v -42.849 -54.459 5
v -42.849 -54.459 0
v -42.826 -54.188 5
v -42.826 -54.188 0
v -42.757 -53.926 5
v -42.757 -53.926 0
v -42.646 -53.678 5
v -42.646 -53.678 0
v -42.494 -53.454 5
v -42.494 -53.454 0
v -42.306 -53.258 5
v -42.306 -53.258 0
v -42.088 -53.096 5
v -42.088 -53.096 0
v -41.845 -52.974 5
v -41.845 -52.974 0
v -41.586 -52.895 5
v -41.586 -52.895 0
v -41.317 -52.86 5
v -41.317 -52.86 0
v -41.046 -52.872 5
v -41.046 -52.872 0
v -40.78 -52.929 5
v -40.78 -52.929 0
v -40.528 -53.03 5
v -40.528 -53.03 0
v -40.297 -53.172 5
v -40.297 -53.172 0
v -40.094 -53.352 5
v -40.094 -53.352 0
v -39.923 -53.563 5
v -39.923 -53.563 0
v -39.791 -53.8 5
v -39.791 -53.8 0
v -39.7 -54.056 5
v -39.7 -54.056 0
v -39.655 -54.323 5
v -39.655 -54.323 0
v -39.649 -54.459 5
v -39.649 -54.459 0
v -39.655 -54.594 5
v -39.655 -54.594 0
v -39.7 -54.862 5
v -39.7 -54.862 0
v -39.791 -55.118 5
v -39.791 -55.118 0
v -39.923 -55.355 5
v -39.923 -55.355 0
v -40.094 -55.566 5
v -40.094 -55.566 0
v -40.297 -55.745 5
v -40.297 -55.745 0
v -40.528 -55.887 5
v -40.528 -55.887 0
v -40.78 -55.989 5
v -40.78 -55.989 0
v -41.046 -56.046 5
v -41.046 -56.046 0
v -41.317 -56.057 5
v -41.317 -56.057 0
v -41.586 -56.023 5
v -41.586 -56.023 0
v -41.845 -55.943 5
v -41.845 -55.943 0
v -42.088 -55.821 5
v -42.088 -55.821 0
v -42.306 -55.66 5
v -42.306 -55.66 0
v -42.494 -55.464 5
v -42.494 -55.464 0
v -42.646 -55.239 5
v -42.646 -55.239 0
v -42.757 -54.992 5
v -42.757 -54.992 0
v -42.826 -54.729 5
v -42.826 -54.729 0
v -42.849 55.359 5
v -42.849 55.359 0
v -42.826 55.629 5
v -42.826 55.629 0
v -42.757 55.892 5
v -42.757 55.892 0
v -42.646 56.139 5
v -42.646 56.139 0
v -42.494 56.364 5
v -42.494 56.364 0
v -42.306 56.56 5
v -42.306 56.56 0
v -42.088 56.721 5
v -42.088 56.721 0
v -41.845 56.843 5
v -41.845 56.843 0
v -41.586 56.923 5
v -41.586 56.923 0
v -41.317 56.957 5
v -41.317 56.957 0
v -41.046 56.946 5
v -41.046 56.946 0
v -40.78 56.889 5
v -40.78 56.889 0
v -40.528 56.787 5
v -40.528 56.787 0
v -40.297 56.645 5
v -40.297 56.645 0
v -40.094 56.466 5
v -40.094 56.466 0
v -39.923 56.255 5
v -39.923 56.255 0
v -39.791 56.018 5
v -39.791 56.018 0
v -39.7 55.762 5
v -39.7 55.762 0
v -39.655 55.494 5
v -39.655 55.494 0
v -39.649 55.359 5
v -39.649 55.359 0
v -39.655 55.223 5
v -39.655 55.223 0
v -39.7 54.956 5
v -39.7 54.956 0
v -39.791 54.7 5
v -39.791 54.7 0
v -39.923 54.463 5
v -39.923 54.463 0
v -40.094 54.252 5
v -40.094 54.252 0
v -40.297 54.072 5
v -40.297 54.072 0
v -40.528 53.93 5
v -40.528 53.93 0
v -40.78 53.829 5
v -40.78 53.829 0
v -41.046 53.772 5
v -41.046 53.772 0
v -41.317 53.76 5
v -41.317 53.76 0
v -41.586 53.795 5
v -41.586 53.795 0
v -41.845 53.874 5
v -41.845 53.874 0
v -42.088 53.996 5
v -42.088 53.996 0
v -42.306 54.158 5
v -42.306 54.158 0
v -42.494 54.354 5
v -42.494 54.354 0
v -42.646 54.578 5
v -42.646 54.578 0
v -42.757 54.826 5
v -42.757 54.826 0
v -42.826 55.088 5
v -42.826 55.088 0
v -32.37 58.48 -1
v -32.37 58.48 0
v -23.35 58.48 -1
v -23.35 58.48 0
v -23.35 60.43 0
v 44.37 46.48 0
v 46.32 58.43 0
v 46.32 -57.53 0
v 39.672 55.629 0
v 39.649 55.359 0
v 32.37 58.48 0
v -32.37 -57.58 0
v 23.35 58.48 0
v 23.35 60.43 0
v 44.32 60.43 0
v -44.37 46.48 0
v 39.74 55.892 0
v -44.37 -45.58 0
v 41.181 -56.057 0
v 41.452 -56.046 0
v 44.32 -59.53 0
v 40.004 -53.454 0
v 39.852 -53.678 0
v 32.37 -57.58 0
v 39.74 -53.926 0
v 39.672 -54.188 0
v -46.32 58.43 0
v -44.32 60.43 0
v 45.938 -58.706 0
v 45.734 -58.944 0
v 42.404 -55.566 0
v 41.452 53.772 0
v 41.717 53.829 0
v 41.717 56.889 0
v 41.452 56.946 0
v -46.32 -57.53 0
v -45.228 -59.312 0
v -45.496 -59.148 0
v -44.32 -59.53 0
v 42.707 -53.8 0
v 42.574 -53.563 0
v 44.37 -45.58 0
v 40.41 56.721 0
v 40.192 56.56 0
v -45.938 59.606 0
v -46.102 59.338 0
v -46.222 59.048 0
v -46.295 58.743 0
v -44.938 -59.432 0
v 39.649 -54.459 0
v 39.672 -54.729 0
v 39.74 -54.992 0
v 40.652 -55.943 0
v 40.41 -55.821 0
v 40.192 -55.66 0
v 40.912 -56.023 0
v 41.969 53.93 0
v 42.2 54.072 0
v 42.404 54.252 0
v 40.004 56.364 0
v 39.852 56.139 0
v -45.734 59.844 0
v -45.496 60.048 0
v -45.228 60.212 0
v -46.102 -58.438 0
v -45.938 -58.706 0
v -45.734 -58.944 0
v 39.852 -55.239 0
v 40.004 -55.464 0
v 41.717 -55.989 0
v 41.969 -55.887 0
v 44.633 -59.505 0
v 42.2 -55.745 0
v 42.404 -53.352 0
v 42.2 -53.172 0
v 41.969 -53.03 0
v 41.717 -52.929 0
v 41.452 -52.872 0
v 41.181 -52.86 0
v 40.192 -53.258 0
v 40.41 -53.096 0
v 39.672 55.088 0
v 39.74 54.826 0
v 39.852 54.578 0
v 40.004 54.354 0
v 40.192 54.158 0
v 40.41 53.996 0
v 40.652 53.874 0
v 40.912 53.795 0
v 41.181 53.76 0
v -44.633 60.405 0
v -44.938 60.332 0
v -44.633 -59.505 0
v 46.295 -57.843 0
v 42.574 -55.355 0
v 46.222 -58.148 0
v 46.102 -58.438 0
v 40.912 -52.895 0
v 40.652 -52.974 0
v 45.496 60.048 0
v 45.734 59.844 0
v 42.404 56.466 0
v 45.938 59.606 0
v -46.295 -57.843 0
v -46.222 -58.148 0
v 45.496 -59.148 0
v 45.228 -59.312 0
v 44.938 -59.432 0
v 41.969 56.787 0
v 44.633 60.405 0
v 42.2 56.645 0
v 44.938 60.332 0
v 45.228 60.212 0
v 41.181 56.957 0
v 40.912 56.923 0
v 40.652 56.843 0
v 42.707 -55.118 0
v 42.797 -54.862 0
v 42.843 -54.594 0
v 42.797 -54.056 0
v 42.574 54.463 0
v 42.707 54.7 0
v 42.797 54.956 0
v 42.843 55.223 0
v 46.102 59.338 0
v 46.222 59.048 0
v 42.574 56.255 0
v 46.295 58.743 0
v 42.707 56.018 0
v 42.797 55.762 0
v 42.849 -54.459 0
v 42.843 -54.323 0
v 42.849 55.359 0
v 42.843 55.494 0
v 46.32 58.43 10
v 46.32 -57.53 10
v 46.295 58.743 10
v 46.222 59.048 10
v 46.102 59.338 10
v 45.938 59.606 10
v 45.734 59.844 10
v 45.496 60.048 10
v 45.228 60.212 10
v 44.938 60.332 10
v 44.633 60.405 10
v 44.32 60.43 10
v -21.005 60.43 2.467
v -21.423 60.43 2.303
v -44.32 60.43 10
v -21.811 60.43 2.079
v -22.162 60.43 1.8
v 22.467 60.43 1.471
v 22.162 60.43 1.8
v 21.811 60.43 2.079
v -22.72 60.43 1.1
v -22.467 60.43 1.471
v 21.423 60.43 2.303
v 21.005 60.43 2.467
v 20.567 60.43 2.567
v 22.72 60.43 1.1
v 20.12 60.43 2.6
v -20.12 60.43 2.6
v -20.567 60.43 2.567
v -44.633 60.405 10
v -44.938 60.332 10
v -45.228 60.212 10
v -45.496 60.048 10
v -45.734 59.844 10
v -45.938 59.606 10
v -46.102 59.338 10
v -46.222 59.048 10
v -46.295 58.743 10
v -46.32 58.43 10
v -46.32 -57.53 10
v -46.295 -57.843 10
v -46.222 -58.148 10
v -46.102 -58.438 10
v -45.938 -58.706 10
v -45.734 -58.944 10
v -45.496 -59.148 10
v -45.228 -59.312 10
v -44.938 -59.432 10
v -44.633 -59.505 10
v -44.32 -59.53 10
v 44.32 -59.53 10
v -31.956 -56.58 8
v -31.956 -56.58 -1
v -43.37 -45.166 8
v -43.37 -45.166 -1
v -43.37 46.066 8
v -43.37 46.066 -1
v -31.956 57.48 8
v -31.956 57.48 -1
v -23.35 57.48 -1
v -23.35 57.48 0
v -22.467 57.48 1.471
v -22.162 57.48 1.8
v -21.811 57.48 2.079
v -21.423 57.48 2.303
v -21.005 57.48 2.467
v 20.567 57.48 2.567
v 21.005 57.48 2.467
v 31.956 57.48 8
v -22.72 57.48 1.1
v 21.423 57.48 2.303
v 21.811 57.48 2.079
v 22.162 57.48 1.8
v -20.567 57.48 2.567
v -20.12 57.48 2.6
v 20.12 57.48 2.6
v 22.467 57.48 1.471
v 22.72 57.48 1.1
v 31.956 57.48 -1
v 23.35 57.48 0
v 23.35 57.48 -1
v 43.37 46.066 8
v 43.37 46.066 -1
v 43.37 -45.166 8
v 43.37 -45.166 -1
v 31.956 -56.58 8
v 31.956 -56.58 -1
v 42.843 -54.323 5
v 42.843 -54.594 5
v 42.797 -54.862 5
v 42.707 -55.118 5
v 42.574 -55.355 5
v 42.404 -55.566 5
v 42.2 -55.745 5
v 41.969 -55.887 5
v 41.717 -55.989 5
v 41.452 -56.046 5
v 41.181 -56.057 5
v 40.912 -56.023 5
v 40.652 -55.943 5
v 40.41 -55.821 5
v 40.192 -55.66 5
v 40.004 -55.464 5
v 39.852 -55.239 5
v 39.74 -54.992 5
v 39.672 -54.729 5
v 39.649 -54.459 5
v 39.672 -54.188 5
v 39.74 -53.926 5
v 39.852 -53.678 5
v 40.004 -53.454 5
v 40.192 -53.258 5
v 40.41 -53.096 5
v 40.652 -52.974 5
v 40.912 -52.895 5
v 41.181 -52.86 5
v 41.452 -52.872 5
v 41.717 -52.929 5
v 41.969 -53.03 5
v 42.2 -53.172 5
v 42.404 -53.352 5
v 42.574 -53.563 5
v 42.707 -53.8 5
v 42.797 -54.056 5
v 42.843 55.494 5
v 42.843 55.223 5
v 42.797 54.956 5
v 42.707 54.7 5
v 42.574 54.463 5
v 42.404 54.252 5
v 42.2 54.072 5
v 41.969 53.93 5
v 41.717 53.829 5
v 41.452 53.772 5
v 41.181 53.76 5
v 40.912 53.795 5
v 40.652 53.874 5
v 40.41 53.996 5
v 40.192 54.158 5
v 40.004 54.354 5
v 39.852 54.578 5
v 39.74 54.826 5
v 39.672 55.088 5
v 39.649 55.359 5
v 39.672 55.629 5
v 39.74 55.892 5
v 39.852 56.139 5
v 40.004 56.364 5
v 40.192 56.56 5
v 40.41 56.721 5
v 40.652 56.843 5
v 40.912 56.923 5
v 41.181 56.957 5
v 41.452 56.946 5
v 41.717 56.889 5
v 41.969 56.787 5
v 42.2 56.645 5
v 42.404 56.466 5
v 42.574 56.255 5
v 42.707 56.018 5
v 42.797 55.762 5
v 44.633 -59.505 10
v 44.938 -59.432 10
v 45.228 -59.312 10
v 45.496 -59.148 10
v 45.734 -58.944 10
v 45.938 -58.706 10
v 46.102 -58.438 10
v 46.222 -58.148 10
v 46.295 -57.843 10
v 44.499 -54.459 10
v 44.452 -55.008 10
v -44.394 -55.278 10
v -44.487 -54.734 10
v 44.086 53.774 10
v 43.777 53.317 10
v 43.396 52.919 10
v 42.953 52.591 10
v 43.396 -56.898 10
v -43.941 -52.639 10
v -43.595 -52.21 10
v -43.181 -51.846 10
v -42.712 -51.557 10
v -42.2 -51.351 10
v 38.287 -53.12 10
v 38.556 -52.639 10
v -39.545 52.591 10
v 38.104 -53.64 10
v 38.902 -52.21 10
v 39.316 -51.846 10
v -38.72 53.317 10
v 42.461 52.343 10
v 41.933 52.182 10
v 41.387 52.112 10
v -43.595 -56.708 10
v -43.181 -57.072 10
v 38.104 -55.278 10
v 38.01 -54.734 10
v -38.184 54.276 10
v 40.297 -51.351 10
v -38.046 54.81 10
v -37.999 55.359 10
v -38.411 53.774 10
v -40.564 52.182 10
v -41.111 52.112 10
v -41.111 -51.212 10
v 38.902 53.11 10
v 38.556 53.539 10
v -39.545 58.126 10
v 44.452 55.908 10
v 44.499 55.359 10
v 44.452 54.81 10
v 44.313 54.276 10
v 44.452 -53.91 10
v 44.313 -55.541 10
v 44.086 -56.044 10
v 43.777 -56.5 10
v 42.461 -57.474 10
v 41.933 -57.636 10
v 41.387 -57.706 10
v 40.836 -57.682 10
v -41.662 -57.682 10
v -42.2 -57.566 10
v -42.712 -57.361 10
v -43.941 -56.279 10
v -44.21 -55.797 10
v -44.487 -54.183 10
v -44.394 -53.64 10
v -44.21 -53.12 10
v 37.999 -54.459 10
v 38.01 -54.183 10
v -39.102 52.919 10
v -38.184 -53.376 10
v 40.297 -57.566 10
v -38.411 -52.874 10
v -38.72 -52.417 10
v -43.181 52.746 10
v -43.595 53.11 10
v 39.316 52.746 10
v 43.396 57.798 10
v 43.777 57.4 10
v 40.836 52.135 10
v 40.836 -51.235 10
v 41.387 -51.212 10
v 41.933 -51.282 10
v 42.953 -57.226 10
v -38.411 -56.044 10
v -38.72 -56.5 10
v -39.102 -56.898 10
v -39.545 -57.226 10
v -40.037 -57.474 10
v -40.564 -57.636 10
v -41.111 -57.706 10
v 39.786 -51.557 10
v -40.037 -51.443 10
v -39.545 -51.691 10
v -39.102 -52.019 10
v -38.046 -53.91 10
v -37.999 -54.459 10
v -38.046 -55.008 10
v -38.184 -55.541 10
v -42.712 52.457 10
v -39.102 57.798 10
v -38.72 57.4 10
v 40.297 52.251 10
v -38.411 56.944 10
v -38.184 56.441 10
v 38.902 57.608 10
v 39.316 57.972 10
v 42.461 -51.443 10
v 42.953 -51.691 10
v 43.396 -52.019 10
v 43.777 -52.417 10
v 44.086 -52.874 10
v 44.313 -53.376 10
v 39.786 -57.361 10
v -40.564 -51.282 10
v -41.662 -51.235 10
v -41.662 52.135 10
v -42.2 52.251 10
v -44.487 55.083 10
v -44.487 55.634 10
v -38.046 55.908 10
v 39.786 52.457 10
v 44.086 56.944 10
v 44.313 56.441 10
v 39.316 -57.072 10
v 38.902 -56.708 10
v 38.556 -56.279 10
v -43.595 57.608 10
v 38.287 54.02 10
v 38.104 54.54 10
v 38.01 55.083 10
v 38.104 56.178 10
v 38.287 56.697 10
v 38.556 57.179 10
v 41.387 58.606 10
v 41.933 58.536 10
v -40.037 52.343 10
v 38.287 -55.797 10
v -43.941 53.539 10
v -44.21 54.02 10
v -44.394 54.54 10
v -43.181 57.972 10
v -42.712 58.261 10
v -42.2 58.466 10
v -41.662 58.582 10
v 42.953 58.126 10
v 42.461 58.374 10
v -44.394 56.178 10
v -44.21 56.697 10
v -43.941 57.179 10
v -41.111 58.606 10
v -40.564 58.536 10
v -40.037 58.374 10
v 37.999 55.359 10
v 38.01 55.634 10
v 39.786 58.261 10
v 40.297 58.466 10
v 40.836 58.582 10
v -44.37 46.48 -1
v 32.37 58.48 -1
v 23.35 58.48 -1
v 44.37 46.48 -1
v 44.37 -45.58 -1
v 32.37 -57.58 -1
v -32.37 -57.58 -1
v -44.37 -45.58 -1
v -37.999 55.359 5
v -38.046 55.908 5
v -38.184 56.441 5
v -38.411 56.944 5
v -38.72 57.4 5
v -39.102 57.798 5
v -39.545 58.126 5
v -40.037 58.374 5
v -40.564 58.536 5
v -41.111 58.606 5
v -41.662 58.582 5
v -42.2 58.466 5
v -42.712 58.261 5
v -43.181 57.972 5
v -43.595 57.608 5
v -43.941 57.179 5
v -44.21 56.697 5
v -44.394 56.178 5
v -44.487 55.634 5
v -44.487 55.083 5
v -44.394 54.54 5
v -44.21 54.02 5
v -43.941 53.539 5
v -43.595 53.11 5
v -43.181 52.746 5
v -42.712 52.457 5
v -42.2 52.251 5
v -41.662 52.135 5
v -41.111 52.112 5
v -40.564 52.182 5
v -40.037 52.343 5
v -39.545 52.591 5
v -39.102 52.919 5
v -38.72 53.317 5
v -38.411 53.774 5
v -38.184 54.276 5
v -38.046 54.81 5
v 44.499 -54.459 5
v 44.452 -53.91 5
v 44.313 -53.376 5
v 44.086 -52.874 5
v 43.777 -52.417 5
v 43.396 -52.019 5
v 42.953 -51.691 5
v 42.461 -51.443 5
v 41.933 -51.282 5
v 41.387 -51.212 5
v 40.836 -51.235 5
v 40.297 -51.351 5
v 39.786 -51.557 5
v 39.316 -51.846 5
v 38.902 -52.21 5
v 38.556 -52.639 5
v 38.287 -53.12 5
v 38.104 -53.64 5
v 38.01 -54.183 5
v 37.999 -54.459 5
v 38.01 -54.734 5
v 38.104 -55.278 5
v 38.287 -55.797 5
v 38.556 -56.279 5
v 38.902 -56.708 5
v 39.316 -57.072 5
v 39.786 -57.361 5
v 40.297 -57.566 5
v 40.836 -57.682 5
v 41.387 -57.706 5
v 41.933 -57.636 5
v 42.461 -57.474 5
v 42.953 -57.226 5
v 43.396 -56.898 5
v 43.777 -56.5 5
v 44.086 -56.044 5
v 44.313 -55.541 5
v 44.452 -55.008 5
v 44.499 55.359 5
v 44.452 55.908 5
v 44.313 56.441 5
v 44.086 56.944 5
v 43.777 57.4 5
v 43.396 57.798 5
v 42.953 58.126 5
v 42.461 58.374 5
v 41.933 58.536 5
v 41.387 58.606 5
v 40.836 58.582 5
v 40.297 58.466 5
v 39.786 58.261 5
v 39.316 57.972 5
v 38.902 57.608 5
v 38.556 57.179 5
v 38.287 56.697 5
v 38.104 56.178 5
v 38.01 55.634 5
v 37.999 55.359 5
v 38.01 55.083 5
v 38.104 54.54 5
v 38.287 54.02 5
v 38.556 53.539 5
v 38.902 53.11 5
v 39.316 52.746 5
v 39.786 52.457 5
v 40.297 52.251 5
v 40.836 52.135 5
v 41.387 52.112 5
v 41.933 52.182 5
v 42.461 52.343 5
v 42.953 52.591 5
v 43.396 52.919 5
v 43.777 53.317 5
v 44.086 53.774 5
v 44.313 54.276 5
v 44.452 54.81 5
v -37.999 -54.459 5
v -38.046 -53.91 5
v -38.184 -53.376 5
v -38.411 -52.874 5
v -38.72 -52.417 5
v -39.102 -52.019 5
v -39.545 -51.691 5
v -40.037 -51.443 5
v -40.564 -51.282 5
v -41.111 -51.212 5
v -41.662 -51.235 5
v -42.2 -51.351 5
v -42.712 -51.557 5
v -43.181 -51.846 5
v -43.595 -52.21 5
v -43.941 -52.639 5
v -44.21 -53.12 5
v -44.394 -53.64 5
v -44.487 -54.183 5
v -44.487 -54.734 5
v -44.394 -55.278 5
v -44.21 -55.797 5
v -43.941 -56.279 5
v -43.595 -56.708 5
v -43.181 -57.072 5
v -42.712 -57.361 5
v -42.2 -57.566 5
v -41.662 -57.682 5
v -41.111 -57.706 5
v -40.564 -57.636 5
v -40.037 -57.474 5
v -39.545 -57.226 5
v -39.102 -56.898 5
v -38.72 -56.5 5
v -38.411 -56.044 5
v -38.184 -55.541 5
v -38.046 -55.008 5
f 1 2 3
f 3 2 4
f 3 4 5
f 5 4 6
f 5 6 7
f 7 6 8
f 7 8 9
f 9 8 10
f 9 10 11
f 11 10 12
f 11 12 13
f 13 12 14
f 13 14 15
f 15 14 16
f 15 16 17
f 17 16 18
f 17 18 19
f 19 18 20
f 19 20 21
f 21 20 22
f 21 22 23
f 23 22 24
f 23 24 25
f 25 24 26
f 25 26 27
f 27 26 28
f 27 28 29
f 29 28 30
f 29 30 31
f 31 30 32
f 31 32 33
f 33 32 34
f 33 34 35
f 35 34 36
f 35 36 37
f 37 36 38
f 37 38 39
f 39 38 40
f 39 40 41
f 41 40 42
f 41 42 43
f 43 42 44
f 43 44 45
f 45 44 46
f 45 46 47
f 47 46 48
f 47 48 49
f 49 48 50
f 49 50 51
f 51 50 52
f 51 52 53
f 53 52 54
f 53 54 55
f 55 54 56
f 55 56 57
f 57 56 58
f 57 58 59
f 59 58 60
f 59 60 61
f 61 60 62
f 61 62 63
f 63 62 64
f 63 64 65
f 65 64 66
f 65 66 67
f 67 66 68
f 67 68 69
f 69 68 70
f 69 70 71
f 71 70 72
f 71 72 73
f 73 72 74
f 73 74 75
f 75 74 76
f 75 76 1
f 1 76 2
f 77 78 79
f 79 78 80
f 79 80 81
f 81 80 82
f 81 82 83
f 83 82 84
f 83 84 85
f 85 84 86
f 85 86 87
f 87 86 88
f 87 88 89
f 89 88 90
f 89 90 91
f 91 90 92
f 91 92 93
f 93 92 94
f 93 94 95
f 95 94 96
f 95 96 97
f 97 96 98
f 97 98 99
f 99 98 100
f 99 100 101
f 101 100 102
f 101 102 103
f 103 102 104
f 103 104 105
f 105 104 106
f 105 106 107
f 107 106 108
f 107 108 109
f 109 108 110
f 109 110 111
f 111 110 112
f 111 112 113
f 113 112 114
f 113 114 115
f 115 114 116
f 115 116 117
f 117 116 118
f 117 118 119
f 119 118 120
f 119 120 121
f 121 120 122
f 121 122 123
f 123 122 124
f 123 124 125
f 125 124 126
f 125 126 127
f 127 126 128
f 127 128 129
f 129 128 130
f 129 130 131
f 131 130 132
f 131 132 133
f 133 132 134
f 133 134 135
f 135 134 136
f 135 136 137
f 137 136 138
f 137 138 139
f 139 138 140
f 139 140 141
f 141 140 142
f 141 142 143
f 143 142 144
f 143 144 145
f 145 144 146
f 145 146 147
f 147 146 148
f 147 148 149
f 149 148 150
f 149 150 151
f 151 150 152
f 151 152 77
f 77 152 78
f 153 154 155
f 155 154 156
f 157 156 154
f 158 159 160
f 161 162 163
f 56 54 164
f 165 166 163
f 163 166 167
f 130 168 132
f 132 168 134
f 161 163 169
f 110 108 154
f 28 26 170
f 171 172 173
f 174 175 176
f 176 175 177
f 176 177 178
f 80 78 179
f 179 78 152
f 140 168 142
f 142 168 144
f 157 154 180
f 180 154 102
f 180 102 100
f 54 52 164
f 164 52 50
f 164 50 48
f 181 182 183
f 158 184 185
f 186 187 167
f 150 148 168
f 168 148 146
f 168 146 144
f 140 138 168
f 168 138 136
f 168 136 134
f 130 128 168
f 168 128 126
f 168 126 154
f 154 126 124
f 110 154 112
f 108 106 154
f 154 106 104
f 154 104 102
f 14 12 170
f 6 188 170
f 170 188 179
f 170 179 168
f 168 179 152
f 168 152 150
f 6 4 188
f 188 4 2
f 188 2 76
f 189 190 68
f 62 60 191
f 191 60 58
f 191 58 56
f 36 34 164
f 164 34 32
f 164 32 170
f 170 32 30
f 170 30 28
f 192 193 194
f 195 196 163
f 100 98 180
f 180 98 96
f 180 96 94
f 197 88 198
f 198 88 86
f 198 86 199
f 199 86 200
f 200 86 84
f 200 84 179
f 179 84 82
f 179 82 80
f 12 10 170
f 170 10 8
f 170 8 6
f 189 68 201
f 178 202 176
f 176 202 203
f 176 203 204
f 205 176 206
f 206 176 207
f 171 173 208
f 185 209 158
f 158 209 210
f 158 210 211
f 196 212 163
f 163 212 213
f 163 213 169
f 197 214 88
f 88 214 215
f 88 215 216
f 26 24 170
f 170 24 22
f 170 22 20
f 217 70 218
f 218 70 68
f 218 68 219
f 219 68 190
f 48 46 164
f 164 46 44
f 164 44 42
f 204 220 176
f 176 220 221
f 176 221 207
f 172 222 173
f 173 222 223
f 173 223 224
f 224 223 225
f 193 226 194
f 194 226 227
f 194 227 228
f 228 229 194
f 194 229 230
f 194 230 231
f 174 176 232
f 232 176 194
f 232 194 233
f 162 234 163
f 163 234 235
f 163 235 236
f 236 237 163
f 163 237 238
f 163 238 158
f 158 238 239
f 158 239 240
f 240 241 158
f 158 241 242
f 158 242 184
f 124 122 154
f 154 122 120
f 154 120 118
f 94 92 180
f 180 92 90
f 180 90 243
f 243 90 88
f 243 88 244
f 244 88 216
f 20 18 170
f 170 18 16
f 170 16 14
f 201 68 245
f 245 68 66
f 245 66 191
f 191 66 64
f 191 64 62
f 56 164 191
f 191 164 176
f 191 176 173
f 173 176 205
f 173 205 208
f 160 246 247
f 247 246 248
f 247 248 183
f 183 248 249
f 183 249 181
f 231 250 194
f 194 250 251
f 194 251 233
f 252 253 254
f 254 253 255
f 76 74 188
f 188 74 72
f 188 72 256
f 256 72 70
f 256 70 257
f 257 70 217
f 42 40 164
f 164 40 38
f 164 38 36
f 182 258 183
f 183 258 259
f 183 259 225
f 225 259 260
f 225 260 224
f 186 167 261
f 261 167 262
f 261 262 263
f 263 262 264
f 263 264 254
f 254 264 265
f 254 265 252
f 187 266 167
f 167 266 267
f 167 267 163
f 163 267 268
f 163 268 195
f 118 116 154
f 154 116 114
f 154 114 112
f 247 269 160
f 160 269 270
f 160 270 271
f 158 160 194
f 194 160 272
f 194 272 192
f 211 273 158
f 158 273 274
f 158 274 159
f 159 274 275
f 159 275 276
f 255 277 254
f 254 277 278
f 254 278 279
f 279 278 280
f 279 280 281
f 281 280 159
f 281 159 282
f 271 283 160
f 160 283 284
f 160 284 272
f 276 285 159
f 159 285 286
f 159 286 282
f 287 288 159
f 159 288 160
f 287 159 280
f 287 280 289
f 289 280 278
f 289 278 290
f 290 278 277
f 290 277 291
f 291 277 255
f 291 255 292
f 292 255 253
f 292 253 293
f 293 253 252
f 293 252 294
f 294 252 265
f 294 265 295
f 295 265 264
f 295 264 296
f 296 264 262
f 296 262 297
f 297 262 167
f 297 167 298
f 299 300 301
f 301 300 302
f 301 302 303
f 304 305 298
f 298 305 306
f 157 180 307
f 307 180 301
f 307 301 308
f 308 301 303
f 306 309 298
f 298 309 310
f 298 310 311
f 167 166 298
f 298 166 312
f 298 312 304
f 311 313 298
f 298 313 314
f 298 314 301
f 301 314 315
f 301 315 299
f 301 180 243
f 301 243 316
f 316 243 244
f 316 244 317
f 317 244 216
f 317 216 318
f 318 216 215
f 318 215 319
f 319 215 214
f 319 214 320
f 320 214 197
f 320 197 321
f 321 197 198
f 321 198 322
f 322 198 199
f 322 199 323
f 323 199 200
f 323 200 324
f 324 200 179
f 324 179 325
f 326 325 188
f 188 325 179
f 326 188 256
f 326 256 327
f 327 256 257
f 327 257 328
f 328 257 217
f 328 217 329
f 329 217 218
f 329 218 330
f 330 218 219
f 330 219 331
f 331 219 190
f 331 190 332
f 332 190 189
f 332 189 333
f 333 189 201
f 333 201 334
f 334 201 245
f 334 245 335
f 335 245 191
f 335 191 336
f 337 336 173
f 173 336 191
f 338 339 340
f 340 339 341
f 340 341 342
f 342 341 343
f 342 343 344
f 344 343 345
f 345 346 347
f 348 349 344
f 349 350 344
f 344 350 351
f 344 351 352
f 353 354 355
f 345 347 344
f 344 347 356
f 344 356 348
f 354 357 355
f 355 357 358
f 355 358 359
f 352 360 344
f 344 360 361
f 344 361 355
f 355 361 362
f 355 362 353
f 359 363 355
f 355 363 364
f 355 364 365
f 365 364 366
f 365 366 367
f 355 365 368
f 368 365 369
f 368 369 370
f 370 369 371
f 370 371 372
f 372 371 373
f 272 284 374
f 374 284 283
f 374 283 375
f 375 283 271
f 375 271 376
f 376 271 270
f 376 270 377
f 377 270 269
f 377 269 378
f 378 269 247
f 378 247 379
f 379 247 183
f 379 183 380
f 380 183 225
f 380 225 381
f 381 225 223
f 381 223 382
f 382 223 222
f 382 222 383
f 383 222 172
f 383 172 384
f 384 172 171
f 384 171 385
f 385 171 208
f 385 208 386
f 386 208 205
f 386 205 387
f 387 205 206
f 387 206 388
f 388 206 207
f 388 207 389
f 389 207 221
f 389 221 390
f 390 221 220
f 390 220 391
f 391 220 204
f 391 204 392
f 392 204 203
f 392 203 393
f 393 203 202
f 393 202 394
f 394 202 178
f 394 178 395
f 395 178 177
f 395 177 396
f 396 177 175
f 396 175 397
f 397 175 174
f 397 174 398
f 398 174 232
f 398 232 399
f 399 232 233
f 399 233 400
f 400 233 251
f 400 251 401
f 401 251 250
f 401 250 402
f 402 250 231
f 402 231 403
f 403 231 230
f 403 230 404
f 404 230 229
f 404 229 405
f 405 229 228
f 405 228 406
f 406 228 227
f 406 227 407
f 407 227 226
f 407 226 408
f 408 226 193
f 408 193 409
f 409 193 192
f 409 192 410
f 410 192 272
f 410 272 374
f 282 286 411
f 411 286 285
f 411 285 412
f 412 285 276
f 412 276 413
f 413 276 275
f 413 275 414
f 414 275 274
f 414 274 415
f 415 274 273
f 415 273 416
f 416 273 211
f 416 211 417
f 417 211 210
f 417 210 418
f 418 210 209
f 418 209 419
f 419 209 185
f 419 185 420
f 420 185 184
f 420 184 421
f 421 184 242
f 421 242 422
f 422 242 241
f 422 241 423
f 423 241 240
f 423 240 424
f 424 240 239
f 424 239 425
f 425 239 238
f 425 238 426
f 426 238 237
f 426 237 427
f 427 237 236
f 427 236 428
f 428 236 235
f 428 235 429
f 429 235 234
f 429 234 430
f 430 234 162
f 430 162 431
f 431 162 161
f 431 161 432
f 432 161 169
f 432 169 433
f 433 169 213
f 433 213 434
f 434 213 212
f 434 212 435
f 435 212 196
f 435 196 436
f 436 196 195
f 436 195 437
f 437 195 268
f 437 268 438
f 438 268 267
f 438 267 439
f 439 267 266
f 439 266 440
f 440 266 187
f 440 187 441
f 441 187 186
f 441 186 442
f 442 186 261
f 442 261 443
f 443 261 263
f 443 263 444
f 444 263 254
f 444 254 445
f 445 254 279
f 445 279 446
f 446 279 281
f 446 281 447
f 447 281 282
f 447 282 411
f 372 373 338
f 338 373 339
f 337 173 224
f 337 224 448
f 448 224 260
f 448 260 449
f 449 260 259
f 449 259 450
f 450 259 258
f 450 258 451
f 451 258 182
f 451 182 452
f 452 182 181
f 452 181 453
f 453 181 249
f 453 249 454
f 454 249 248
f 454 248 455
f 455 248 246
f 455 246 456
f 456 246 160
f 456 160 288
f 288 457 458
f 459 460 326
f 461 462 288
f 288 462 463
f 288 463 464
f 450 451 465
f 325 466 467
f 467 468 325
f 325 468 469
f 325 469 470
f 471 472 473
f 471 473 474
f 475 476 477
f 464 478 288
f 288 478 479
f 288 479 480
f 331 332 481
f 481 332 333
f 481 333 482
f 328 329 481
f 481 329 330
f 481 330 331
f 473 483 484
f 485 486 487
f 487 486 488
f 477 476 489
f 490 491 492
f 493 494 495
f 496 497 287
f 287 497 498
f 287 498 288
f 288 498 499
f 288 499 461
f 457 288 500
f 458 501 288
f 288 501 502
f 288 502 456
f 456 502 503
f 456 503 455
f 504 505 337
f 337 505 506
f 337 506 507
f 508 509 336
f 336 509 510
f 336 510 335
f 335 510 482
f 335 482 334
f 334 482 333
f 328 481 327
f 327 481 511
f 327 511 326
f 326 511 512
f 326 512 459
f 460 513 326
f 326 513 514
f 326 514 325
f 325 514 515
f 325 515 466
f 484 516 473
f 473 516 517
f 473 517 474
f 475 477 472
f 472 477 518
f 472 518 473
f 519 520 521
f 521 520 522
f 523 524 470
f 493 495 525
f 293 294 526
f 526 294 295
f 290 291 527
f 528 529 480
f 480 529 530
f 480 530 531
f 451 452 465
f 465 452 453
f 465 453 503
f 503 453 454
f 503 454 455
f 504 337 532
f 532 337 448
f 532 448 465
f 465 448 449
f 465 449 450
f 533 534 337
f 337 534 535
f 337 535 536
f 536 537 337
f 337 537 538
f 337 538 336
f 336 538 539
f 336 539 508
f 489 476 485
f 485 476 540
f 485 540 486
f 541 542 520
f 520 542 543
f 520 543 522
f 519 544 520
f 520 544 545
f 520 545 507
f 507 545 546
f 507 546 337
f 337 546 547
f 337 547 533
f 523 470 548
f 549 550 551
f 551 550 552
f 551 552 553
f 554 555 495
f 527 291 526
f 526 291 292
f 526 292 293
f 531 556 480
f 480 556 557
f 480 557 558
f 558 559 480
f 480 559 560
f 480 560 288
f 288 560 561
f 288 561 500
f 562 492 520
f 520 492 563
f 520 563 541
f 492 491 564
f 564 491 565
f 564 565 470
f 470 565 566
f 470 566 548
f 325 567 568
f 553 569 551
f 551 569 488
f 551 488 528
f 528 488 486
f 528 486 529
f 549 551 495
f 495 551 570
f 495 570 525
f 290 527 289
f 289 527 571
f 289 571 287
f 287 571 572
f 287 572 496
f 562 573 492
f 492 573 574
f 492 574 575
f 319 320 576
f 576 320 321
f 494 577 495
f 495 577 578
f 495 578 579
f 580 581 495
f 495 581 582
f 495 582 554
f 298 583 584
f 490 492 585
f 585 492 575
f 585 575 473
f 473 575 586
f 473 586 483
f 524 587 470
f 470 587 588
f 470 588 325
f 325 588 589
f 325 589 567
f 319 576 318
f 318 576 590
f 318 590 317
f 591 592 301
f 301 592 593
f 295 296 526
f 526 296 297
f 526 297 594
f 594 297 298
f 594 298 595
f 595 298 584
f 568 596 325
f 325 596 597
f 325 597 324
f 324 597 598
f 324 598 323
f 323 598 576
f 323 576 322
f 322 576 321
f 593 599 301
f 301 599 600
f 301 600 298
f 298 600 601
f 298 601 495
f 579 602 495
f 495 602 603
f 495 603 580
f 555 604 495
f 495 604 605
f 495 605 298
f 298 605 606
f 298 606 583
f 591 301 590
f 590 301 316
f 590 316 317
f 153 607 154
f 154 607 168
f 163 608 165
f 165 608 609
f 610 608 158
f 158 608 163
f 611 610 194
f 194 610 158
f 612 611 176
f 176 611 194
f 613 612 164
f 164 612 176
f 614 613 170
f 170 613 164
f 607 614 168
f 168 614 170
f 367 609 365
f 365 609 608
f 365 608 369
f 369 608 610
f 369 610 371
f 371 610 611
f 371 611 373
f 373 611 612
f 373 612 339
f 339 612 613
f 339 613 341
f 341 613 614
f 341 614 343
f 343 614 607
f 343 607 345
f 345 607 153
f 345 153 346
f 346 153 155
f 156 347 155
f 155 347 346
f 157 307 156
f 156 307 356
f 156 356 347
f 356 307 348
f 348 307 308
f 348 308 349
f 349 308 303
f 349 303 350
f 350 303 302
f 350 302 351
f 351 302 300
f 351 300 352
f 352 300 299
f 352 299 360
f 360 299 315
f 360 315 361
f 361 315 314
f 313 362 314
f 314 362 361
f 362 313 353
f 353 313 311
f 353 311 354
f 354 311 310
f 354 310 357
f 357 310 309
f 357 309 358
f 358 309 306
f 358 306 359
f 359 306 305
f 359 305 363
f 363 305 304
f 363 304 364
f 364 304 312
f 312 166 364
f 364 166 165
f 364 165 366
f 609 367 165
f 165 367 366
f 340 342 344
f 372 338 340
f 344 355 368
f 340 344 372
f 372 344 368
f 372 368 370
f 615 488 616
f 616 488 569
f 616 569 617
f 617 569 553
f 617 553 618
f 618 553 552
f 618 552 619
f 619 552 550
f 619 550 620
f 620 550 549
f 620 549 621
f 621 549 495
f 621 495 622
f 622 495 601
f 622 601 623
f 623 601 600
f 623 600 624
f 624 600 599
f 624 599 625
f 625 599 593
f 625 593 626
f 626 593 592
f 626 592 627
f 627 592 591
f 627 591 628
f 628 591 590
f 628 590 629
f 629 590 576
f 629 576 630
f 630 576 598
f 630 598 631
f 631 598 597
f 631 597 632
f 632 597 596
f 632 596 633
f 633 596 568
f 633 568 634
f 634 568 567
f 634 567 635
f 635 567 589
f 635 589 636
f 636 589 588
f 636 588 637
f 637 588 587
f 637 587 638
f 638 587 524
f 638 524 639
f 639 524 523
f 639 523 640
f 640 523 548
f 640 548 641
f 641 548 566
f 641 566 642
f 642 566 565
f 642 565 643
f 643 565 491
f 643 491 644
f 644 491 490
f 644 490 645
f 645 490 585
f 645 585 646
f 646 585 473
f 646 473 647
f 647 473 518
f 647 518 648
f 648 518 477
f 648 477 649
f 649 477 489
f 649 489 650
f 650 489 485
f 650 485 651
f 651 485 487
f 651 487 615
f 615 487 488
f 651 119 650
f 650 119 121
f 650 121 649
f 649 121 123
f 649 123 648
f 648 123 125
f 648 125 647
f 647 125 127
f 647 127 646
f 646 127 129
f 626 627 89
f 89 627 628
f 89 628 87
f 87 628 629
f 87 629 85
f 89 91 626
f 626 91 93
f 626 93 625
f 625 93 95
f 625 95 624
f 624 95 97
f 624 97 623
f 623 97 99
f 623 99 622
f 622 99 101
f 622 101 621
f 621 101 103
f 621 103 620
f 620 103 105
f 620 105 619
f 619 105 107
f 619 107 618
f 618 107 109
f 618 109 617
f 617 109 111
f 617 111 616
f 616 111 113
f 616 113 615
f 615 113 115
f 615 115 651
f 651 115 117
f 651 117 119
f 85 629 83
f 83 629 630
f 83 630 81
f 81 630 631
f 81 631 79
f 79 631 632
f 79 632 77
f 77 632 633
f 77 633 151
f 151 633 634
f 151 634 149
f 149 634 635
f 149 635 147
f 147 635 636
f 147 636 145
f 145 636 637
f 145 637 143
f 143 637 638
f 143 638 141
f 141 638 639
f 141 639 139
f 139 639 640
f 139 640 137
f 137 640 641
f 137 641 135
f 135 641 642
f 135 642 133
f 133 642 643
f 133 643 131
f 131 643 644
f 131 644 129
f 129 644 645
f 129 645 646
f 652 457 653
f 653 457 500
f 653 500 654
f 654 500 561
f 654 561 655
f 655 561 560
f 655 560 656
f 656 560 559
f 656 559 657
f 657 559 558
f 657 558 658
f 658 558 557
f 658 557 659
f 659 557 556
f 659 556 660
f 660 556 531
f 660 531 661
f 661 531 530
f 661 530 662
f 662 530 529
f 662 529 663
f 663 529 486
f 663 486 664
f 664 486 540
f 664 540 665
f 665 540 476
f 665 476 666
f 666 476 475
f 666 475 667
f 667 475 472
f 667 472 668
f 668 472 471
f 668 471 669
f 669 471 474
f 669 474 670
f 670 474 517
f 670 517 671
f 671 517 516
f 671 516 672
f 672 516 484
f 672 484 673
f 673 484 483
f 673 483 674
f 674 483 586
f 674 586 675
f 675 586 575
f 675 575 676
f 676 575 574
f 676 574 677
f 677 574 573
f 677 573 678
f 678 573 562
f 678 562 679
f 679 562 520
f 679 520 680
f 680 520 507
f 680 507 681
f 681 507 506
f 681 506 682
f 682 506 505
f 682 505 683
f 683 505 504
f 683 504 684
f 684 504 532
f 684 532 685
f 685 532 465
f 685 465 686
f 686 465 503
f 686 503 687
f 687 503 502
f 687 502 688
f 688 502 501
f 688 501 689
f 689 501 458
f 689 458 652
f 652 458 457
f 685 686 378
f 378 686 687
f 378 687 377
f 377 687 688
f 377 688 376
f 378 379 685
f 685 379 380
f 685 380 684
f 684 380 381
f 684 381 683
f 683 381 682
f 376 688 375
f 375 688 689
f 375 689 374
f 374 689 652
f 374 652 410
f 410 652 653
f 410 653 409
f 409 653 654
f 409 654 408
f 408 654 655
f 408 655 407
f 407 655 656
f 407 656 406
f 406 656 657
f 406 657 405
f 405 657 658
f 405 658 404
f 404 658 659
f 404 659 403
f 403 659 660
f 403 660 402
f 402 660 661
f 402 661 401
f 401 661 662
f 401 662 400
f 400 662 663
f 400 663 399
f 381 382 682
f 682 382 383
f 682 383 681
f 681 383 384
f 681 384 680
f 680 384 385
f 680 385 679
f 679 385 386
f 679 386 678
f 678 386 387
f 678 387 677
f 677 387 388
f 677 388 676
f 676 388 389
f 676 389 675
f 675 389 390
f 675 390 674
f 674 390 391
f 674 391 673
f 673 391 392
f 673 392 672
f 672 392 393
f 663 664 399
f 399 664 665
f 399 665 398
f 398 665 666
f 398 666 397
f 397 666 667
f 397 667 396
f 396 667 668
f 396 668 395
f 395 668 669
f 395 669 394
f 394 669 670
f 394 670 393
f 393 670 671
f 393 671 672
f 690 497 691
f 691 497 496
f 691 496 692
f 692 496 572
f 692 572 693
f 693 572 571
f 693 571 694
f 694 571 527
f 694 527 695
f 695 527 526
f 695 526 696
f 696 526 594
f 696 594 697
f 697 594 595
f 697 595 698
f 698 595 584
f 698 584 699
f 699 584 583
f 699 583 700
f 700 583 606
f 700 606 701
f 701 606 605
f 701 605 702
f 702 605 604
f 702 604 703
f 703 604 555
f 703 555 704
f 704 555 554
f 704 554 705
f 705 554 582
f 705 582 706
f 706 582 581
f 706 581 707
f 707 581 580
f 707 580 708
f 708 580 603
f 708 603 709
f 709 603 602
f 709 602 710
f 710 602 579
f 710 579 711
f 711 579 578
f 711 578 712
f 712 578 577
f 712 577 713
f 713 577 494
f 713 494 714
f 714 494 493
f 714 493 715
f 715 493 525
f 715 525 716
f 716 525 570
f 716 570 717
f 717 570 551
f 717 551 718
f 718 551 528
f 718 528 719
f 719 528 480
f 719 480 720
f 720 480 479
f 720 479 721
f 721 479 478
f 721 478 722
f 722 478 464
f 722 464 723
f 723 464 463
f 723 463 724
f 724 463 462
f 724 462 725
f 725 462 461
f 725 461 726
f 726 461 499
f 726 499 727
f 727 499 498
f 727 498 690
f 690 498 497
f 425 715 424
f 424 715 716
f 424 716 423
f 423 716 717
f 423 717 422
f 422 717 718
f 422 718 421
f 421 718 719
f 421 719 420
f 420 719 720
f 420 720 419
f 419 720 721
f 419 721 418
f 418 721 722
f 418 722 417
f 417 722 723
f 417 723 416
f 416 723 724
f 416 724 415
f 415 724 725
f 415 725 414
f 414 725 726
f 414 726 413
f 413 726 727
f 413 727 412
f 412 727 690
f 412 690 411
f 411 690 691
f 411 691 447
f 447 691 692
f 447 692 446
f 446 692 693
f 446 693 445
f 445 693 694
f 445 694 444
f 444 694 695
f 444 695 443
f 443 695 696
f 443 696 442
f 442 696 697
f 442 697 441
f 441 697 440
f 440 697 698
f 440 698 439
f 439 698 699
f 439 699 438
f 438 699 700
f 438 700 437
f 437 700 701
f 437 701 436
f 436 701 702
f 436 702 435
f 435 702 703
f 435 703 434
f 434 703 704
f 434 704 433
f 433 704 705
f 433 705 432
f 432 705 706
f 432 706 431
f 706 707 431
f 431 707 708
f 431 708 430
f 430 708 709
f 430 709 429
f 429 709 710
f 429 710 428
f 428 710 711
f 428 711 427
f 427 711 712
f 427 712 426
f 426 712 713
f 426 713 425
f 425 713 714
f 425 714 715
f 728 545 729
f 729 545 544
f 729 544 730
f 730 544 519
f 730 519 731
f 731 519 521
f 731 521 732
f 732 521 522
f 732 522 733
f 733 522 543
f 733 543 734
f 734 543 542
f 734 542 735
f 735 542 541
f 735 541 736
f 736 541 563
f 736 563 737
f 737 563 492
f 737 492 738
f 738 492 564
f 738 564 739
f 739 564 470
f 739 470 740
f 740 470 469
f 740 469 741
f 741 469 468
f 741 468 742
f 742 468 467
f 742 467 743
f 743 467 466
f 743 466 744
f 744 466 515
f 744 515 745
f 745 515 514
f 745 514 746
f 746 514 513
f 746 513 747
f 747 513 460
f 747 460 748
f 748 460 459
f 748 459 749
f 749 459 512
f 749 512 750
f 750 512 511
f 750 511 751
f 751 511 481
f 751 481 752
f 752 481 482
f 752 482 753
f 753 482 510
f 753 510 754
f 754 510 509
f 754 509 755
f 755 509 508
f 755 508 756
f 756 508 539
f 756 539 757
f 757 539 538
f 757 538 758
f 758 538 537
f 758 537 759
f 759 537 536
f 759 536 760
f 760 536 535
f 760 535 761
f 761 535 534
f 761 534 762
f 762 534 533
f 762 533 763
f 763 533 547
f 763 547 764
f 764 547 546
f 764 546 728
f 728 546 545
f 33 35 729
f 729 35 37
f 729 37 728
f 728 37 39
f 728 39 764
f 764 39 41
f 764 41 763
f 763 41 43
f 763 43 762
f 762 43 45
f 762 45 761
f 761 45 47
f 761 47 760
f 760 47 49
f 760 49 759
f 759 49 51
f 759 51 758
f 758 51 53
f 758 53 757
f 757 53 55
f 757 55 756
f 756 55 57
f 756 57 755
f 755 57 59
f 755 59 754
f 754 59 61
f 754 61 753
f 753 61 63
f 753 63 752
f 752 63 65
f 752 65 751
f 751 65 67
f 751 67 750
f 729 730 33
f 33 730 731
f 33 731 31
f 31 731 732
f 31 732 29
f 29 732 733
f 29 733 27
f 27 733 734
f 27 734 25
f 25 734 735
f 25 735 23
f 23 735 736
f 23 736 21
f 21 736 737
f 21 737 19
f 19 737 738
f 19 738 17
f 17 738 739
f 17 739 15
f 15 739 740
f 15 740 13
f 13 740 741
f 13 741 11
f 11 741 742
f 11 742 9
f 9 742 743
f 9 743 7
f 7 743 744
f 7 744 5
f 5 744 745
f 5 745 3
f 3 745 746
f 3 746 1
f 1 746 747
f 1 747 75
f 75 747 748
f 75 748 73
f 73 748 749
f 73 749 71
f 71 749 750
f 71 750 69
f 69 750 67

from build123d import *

# Parameters (mm, degrees)
ESQUISSE1_R       = 1.6
WALLS_DEPTH       = 10
CENTRAGE_DEPTH    = 1
PASSAGE_CMC_REACH = 130.98
COUVERCLE_DEPTH   = 2
PASSAGE_M3_START  = -5
ESQUISSE5_R       = 3.25
ESQUISSE5_R_2     = 1.6
PASSAGE_M3_DEPTH  = 5


with BuildPart() as part:
    # Esquisse1 → Walls (new body)
    with BuildSketch(Plane.XY):
        with BuildLine():
            Line((-44.32, 60.43), (44.32, 60.43))
            ThreePointArc((44.32, 60.43), (45.734213562, 59.844213562), (46.32, 58.43))
            Line((46.32, 58.43), (46.32, -57.53))
            ThreePointArc((46.32, -57.53), (45.734213562, -58.944213562), (44.32, -59.53))
            Line((44.32, -59.53), (-44.32, -59.53))
            ThreePointArc((-44.32, -59.53), (-45.734213562, -58.944213562), (-46.32, -57.53))
            Line((-46.32, -57.53), (-46.32, 58.43))
            ThreePointArc((-46.32, 58.43), (-45.734213562, 59.844213562), (-44.32, 60.43))
        make_face()
        with Locations((-41.248784258, -54.458784258)):
            Circle(ESQUISSE1_R, mode=Mode.SUBTRACT)
        with Locations((41.248784258, -54.458784258)):
            Circle(ESQUISSE1_R, mode=Mode.SUBTRACT)
        with Locations((41.248784258, 55.358784258)):
            Circle(ESQUISSE1_R, mode=Mode.SUBTRACT)
        with Locations((-41.248784258, 55.358784258)):
            Circle(ESQUISSE1_R, mode=Mode.SUBTRACT)
        Polygon((-43.37, 46.065786438), (-31.955786438, 57.48), (31.955786438, 57.48), (43.37, 46.065786438), (43.37, -45.165786438), (31.955786438, -56.58), (-31.955786438, -56.58), (-43.37, -45.165786438), align=None, mode=Mode.SUBTRACT)
    extrude(amount=WALLS_DEPTH)

    # Esquisse1<5> → Centrage (add)
    with BuildSketch(Plane.XY):
        Polygon((-44.37, 46.48), (-32.37, 58.48), (32.37, 58.48), (44.37, 46.48), (44.37, -45.58), (32.37, -57.58), (-32.37, -57.58), (-44.37, -45.58), align=None)
        Polygon((-31.955786438, -56.58), (-43.37, -45.165786438), (-43.37, 46.065786438), (-31.955786438, 57.48), (31.955786438, 57.48), (43.37, 46.065786438), (43.37, -45.165786438), (31.955786438, -56.58), align=None, mode=Mode.SUBTRACT)
    extrude(amount=-CENTRAGE_DEPTH)

    # Esquisse2 → Passage_CMC (cut, up to next)
    with BuildSketch(Plane(origin=(0, 60.43, 0), x_dir=(1, 0, 0), z_dir=(0, 1, 0)), mode=Mode.PRIVATE) as passage_cmc_sk1:
        with BuildLine():
            Line((-23.35, 1), (23.35, 1))
            Line((23.35, 1), (23.35, 0))
            Line((23.35, 0), (22.72, -1.1))
            ThreePointArc((22.72, -1.1), (21.621090793, -2.198557375), (20.12, -2.6))
            Line((20.12, -2.6), (-20.12, -2.6))
            ThreePointArc((-20.12, -2.6), (-21.621090793, -2.198557375), (-22.72, -1.1))
            Line((-22.72, -1.1), (-23.35, 0))
            Line((-23.35, 0), (-23.35, 1))
        make_face()
    passage_cmc_tool1 = extrude(passage_cmc_sk1.sketch, amount=-PASSAGE_CMC_REACH, mode=Mode.PRIVATE) & part.part
    add(passage_cmc_tool1.solids().sort_by_distance((0, 60.43, 0.768983))[0], mode=Mode.SUBTRACT)

    # Esquisse4 → Couvercle (add)
    with BuildSketch(Plane.XY.offset(10)):
        Polygon((-43.37, -45.165786438), (-43.37, 46.065786438), (-31.955786438, 57.48), (31.955786438, 57.48), (43.37, 46.065786438), (43.37, -45.165786438), (31.955786438, -56.58), (-31.955786438, -56.58), align=None)
    extrude(amount=-COUVERCLE_DEPTH)

    # Esquisse5 → Passage_M3 (cut)
    # profile 1 of 4: a face of its own
    with BuildSketch(Plane.XY.offset(10).offset(PASSAGE_M3_START)):
        with Locations((-41.248784258, -54.458784258)):
            Circle(ESQUISSE5_R)
        with Locations((-41.248784258, -54.458784258)):
            Circle(ESQUISSE5_R_2, mode=Mode.SUBTRACT)
    # profile 2 of 4: a face of its own
    with BuildSketch(Plane.XY.offset(10).offset(PASSAGE_M3_START)):
        with Locations((-41.248784258, 55.358784258)):
            Circle(ESQUISSE5_R)
        with Locations((-41.248784258, 55.358784258)):
            Circle(ESQUISSE5_R_2, mode=Mode.SUBTRACT)
    # profile 3 of 4: a face of its own
    with BuildSketch(Plane.XY.offset(10).offset(PASSAGE_M3_START)):
        with Locations(Location((41.248784258, 55.358784258, 0), (0, 0, 180))):
            Circle(ESQUISSE5_R)
        with Locations(Location((41.248784258, 55.358784258, 0), (0, 0, 180))):
            Circle(ESQUISSE5_R_2, mode=Mode.SUBTRACT)
    # profile 4 of 4: a face of its own
    with BuildSketch(Plane.XY.offset(10).offset(PASSAGE_M3_START)):
        with Locations(Location((41.248784258, -54.458784258, 0), (0, 0, 180))):
            Circle(ESQUISSE5_R)
        with Locations(Location((41.248784258, -54.458784258, 0), (0, 0, 180))):
            Circle(ESQUISSE5_R_2, mode=Mode.SUBTRACT)
    extrude(amount=PASSAGE_M3_DEPTH, mode=Mode.SUBTRACT)


solid = part.part
